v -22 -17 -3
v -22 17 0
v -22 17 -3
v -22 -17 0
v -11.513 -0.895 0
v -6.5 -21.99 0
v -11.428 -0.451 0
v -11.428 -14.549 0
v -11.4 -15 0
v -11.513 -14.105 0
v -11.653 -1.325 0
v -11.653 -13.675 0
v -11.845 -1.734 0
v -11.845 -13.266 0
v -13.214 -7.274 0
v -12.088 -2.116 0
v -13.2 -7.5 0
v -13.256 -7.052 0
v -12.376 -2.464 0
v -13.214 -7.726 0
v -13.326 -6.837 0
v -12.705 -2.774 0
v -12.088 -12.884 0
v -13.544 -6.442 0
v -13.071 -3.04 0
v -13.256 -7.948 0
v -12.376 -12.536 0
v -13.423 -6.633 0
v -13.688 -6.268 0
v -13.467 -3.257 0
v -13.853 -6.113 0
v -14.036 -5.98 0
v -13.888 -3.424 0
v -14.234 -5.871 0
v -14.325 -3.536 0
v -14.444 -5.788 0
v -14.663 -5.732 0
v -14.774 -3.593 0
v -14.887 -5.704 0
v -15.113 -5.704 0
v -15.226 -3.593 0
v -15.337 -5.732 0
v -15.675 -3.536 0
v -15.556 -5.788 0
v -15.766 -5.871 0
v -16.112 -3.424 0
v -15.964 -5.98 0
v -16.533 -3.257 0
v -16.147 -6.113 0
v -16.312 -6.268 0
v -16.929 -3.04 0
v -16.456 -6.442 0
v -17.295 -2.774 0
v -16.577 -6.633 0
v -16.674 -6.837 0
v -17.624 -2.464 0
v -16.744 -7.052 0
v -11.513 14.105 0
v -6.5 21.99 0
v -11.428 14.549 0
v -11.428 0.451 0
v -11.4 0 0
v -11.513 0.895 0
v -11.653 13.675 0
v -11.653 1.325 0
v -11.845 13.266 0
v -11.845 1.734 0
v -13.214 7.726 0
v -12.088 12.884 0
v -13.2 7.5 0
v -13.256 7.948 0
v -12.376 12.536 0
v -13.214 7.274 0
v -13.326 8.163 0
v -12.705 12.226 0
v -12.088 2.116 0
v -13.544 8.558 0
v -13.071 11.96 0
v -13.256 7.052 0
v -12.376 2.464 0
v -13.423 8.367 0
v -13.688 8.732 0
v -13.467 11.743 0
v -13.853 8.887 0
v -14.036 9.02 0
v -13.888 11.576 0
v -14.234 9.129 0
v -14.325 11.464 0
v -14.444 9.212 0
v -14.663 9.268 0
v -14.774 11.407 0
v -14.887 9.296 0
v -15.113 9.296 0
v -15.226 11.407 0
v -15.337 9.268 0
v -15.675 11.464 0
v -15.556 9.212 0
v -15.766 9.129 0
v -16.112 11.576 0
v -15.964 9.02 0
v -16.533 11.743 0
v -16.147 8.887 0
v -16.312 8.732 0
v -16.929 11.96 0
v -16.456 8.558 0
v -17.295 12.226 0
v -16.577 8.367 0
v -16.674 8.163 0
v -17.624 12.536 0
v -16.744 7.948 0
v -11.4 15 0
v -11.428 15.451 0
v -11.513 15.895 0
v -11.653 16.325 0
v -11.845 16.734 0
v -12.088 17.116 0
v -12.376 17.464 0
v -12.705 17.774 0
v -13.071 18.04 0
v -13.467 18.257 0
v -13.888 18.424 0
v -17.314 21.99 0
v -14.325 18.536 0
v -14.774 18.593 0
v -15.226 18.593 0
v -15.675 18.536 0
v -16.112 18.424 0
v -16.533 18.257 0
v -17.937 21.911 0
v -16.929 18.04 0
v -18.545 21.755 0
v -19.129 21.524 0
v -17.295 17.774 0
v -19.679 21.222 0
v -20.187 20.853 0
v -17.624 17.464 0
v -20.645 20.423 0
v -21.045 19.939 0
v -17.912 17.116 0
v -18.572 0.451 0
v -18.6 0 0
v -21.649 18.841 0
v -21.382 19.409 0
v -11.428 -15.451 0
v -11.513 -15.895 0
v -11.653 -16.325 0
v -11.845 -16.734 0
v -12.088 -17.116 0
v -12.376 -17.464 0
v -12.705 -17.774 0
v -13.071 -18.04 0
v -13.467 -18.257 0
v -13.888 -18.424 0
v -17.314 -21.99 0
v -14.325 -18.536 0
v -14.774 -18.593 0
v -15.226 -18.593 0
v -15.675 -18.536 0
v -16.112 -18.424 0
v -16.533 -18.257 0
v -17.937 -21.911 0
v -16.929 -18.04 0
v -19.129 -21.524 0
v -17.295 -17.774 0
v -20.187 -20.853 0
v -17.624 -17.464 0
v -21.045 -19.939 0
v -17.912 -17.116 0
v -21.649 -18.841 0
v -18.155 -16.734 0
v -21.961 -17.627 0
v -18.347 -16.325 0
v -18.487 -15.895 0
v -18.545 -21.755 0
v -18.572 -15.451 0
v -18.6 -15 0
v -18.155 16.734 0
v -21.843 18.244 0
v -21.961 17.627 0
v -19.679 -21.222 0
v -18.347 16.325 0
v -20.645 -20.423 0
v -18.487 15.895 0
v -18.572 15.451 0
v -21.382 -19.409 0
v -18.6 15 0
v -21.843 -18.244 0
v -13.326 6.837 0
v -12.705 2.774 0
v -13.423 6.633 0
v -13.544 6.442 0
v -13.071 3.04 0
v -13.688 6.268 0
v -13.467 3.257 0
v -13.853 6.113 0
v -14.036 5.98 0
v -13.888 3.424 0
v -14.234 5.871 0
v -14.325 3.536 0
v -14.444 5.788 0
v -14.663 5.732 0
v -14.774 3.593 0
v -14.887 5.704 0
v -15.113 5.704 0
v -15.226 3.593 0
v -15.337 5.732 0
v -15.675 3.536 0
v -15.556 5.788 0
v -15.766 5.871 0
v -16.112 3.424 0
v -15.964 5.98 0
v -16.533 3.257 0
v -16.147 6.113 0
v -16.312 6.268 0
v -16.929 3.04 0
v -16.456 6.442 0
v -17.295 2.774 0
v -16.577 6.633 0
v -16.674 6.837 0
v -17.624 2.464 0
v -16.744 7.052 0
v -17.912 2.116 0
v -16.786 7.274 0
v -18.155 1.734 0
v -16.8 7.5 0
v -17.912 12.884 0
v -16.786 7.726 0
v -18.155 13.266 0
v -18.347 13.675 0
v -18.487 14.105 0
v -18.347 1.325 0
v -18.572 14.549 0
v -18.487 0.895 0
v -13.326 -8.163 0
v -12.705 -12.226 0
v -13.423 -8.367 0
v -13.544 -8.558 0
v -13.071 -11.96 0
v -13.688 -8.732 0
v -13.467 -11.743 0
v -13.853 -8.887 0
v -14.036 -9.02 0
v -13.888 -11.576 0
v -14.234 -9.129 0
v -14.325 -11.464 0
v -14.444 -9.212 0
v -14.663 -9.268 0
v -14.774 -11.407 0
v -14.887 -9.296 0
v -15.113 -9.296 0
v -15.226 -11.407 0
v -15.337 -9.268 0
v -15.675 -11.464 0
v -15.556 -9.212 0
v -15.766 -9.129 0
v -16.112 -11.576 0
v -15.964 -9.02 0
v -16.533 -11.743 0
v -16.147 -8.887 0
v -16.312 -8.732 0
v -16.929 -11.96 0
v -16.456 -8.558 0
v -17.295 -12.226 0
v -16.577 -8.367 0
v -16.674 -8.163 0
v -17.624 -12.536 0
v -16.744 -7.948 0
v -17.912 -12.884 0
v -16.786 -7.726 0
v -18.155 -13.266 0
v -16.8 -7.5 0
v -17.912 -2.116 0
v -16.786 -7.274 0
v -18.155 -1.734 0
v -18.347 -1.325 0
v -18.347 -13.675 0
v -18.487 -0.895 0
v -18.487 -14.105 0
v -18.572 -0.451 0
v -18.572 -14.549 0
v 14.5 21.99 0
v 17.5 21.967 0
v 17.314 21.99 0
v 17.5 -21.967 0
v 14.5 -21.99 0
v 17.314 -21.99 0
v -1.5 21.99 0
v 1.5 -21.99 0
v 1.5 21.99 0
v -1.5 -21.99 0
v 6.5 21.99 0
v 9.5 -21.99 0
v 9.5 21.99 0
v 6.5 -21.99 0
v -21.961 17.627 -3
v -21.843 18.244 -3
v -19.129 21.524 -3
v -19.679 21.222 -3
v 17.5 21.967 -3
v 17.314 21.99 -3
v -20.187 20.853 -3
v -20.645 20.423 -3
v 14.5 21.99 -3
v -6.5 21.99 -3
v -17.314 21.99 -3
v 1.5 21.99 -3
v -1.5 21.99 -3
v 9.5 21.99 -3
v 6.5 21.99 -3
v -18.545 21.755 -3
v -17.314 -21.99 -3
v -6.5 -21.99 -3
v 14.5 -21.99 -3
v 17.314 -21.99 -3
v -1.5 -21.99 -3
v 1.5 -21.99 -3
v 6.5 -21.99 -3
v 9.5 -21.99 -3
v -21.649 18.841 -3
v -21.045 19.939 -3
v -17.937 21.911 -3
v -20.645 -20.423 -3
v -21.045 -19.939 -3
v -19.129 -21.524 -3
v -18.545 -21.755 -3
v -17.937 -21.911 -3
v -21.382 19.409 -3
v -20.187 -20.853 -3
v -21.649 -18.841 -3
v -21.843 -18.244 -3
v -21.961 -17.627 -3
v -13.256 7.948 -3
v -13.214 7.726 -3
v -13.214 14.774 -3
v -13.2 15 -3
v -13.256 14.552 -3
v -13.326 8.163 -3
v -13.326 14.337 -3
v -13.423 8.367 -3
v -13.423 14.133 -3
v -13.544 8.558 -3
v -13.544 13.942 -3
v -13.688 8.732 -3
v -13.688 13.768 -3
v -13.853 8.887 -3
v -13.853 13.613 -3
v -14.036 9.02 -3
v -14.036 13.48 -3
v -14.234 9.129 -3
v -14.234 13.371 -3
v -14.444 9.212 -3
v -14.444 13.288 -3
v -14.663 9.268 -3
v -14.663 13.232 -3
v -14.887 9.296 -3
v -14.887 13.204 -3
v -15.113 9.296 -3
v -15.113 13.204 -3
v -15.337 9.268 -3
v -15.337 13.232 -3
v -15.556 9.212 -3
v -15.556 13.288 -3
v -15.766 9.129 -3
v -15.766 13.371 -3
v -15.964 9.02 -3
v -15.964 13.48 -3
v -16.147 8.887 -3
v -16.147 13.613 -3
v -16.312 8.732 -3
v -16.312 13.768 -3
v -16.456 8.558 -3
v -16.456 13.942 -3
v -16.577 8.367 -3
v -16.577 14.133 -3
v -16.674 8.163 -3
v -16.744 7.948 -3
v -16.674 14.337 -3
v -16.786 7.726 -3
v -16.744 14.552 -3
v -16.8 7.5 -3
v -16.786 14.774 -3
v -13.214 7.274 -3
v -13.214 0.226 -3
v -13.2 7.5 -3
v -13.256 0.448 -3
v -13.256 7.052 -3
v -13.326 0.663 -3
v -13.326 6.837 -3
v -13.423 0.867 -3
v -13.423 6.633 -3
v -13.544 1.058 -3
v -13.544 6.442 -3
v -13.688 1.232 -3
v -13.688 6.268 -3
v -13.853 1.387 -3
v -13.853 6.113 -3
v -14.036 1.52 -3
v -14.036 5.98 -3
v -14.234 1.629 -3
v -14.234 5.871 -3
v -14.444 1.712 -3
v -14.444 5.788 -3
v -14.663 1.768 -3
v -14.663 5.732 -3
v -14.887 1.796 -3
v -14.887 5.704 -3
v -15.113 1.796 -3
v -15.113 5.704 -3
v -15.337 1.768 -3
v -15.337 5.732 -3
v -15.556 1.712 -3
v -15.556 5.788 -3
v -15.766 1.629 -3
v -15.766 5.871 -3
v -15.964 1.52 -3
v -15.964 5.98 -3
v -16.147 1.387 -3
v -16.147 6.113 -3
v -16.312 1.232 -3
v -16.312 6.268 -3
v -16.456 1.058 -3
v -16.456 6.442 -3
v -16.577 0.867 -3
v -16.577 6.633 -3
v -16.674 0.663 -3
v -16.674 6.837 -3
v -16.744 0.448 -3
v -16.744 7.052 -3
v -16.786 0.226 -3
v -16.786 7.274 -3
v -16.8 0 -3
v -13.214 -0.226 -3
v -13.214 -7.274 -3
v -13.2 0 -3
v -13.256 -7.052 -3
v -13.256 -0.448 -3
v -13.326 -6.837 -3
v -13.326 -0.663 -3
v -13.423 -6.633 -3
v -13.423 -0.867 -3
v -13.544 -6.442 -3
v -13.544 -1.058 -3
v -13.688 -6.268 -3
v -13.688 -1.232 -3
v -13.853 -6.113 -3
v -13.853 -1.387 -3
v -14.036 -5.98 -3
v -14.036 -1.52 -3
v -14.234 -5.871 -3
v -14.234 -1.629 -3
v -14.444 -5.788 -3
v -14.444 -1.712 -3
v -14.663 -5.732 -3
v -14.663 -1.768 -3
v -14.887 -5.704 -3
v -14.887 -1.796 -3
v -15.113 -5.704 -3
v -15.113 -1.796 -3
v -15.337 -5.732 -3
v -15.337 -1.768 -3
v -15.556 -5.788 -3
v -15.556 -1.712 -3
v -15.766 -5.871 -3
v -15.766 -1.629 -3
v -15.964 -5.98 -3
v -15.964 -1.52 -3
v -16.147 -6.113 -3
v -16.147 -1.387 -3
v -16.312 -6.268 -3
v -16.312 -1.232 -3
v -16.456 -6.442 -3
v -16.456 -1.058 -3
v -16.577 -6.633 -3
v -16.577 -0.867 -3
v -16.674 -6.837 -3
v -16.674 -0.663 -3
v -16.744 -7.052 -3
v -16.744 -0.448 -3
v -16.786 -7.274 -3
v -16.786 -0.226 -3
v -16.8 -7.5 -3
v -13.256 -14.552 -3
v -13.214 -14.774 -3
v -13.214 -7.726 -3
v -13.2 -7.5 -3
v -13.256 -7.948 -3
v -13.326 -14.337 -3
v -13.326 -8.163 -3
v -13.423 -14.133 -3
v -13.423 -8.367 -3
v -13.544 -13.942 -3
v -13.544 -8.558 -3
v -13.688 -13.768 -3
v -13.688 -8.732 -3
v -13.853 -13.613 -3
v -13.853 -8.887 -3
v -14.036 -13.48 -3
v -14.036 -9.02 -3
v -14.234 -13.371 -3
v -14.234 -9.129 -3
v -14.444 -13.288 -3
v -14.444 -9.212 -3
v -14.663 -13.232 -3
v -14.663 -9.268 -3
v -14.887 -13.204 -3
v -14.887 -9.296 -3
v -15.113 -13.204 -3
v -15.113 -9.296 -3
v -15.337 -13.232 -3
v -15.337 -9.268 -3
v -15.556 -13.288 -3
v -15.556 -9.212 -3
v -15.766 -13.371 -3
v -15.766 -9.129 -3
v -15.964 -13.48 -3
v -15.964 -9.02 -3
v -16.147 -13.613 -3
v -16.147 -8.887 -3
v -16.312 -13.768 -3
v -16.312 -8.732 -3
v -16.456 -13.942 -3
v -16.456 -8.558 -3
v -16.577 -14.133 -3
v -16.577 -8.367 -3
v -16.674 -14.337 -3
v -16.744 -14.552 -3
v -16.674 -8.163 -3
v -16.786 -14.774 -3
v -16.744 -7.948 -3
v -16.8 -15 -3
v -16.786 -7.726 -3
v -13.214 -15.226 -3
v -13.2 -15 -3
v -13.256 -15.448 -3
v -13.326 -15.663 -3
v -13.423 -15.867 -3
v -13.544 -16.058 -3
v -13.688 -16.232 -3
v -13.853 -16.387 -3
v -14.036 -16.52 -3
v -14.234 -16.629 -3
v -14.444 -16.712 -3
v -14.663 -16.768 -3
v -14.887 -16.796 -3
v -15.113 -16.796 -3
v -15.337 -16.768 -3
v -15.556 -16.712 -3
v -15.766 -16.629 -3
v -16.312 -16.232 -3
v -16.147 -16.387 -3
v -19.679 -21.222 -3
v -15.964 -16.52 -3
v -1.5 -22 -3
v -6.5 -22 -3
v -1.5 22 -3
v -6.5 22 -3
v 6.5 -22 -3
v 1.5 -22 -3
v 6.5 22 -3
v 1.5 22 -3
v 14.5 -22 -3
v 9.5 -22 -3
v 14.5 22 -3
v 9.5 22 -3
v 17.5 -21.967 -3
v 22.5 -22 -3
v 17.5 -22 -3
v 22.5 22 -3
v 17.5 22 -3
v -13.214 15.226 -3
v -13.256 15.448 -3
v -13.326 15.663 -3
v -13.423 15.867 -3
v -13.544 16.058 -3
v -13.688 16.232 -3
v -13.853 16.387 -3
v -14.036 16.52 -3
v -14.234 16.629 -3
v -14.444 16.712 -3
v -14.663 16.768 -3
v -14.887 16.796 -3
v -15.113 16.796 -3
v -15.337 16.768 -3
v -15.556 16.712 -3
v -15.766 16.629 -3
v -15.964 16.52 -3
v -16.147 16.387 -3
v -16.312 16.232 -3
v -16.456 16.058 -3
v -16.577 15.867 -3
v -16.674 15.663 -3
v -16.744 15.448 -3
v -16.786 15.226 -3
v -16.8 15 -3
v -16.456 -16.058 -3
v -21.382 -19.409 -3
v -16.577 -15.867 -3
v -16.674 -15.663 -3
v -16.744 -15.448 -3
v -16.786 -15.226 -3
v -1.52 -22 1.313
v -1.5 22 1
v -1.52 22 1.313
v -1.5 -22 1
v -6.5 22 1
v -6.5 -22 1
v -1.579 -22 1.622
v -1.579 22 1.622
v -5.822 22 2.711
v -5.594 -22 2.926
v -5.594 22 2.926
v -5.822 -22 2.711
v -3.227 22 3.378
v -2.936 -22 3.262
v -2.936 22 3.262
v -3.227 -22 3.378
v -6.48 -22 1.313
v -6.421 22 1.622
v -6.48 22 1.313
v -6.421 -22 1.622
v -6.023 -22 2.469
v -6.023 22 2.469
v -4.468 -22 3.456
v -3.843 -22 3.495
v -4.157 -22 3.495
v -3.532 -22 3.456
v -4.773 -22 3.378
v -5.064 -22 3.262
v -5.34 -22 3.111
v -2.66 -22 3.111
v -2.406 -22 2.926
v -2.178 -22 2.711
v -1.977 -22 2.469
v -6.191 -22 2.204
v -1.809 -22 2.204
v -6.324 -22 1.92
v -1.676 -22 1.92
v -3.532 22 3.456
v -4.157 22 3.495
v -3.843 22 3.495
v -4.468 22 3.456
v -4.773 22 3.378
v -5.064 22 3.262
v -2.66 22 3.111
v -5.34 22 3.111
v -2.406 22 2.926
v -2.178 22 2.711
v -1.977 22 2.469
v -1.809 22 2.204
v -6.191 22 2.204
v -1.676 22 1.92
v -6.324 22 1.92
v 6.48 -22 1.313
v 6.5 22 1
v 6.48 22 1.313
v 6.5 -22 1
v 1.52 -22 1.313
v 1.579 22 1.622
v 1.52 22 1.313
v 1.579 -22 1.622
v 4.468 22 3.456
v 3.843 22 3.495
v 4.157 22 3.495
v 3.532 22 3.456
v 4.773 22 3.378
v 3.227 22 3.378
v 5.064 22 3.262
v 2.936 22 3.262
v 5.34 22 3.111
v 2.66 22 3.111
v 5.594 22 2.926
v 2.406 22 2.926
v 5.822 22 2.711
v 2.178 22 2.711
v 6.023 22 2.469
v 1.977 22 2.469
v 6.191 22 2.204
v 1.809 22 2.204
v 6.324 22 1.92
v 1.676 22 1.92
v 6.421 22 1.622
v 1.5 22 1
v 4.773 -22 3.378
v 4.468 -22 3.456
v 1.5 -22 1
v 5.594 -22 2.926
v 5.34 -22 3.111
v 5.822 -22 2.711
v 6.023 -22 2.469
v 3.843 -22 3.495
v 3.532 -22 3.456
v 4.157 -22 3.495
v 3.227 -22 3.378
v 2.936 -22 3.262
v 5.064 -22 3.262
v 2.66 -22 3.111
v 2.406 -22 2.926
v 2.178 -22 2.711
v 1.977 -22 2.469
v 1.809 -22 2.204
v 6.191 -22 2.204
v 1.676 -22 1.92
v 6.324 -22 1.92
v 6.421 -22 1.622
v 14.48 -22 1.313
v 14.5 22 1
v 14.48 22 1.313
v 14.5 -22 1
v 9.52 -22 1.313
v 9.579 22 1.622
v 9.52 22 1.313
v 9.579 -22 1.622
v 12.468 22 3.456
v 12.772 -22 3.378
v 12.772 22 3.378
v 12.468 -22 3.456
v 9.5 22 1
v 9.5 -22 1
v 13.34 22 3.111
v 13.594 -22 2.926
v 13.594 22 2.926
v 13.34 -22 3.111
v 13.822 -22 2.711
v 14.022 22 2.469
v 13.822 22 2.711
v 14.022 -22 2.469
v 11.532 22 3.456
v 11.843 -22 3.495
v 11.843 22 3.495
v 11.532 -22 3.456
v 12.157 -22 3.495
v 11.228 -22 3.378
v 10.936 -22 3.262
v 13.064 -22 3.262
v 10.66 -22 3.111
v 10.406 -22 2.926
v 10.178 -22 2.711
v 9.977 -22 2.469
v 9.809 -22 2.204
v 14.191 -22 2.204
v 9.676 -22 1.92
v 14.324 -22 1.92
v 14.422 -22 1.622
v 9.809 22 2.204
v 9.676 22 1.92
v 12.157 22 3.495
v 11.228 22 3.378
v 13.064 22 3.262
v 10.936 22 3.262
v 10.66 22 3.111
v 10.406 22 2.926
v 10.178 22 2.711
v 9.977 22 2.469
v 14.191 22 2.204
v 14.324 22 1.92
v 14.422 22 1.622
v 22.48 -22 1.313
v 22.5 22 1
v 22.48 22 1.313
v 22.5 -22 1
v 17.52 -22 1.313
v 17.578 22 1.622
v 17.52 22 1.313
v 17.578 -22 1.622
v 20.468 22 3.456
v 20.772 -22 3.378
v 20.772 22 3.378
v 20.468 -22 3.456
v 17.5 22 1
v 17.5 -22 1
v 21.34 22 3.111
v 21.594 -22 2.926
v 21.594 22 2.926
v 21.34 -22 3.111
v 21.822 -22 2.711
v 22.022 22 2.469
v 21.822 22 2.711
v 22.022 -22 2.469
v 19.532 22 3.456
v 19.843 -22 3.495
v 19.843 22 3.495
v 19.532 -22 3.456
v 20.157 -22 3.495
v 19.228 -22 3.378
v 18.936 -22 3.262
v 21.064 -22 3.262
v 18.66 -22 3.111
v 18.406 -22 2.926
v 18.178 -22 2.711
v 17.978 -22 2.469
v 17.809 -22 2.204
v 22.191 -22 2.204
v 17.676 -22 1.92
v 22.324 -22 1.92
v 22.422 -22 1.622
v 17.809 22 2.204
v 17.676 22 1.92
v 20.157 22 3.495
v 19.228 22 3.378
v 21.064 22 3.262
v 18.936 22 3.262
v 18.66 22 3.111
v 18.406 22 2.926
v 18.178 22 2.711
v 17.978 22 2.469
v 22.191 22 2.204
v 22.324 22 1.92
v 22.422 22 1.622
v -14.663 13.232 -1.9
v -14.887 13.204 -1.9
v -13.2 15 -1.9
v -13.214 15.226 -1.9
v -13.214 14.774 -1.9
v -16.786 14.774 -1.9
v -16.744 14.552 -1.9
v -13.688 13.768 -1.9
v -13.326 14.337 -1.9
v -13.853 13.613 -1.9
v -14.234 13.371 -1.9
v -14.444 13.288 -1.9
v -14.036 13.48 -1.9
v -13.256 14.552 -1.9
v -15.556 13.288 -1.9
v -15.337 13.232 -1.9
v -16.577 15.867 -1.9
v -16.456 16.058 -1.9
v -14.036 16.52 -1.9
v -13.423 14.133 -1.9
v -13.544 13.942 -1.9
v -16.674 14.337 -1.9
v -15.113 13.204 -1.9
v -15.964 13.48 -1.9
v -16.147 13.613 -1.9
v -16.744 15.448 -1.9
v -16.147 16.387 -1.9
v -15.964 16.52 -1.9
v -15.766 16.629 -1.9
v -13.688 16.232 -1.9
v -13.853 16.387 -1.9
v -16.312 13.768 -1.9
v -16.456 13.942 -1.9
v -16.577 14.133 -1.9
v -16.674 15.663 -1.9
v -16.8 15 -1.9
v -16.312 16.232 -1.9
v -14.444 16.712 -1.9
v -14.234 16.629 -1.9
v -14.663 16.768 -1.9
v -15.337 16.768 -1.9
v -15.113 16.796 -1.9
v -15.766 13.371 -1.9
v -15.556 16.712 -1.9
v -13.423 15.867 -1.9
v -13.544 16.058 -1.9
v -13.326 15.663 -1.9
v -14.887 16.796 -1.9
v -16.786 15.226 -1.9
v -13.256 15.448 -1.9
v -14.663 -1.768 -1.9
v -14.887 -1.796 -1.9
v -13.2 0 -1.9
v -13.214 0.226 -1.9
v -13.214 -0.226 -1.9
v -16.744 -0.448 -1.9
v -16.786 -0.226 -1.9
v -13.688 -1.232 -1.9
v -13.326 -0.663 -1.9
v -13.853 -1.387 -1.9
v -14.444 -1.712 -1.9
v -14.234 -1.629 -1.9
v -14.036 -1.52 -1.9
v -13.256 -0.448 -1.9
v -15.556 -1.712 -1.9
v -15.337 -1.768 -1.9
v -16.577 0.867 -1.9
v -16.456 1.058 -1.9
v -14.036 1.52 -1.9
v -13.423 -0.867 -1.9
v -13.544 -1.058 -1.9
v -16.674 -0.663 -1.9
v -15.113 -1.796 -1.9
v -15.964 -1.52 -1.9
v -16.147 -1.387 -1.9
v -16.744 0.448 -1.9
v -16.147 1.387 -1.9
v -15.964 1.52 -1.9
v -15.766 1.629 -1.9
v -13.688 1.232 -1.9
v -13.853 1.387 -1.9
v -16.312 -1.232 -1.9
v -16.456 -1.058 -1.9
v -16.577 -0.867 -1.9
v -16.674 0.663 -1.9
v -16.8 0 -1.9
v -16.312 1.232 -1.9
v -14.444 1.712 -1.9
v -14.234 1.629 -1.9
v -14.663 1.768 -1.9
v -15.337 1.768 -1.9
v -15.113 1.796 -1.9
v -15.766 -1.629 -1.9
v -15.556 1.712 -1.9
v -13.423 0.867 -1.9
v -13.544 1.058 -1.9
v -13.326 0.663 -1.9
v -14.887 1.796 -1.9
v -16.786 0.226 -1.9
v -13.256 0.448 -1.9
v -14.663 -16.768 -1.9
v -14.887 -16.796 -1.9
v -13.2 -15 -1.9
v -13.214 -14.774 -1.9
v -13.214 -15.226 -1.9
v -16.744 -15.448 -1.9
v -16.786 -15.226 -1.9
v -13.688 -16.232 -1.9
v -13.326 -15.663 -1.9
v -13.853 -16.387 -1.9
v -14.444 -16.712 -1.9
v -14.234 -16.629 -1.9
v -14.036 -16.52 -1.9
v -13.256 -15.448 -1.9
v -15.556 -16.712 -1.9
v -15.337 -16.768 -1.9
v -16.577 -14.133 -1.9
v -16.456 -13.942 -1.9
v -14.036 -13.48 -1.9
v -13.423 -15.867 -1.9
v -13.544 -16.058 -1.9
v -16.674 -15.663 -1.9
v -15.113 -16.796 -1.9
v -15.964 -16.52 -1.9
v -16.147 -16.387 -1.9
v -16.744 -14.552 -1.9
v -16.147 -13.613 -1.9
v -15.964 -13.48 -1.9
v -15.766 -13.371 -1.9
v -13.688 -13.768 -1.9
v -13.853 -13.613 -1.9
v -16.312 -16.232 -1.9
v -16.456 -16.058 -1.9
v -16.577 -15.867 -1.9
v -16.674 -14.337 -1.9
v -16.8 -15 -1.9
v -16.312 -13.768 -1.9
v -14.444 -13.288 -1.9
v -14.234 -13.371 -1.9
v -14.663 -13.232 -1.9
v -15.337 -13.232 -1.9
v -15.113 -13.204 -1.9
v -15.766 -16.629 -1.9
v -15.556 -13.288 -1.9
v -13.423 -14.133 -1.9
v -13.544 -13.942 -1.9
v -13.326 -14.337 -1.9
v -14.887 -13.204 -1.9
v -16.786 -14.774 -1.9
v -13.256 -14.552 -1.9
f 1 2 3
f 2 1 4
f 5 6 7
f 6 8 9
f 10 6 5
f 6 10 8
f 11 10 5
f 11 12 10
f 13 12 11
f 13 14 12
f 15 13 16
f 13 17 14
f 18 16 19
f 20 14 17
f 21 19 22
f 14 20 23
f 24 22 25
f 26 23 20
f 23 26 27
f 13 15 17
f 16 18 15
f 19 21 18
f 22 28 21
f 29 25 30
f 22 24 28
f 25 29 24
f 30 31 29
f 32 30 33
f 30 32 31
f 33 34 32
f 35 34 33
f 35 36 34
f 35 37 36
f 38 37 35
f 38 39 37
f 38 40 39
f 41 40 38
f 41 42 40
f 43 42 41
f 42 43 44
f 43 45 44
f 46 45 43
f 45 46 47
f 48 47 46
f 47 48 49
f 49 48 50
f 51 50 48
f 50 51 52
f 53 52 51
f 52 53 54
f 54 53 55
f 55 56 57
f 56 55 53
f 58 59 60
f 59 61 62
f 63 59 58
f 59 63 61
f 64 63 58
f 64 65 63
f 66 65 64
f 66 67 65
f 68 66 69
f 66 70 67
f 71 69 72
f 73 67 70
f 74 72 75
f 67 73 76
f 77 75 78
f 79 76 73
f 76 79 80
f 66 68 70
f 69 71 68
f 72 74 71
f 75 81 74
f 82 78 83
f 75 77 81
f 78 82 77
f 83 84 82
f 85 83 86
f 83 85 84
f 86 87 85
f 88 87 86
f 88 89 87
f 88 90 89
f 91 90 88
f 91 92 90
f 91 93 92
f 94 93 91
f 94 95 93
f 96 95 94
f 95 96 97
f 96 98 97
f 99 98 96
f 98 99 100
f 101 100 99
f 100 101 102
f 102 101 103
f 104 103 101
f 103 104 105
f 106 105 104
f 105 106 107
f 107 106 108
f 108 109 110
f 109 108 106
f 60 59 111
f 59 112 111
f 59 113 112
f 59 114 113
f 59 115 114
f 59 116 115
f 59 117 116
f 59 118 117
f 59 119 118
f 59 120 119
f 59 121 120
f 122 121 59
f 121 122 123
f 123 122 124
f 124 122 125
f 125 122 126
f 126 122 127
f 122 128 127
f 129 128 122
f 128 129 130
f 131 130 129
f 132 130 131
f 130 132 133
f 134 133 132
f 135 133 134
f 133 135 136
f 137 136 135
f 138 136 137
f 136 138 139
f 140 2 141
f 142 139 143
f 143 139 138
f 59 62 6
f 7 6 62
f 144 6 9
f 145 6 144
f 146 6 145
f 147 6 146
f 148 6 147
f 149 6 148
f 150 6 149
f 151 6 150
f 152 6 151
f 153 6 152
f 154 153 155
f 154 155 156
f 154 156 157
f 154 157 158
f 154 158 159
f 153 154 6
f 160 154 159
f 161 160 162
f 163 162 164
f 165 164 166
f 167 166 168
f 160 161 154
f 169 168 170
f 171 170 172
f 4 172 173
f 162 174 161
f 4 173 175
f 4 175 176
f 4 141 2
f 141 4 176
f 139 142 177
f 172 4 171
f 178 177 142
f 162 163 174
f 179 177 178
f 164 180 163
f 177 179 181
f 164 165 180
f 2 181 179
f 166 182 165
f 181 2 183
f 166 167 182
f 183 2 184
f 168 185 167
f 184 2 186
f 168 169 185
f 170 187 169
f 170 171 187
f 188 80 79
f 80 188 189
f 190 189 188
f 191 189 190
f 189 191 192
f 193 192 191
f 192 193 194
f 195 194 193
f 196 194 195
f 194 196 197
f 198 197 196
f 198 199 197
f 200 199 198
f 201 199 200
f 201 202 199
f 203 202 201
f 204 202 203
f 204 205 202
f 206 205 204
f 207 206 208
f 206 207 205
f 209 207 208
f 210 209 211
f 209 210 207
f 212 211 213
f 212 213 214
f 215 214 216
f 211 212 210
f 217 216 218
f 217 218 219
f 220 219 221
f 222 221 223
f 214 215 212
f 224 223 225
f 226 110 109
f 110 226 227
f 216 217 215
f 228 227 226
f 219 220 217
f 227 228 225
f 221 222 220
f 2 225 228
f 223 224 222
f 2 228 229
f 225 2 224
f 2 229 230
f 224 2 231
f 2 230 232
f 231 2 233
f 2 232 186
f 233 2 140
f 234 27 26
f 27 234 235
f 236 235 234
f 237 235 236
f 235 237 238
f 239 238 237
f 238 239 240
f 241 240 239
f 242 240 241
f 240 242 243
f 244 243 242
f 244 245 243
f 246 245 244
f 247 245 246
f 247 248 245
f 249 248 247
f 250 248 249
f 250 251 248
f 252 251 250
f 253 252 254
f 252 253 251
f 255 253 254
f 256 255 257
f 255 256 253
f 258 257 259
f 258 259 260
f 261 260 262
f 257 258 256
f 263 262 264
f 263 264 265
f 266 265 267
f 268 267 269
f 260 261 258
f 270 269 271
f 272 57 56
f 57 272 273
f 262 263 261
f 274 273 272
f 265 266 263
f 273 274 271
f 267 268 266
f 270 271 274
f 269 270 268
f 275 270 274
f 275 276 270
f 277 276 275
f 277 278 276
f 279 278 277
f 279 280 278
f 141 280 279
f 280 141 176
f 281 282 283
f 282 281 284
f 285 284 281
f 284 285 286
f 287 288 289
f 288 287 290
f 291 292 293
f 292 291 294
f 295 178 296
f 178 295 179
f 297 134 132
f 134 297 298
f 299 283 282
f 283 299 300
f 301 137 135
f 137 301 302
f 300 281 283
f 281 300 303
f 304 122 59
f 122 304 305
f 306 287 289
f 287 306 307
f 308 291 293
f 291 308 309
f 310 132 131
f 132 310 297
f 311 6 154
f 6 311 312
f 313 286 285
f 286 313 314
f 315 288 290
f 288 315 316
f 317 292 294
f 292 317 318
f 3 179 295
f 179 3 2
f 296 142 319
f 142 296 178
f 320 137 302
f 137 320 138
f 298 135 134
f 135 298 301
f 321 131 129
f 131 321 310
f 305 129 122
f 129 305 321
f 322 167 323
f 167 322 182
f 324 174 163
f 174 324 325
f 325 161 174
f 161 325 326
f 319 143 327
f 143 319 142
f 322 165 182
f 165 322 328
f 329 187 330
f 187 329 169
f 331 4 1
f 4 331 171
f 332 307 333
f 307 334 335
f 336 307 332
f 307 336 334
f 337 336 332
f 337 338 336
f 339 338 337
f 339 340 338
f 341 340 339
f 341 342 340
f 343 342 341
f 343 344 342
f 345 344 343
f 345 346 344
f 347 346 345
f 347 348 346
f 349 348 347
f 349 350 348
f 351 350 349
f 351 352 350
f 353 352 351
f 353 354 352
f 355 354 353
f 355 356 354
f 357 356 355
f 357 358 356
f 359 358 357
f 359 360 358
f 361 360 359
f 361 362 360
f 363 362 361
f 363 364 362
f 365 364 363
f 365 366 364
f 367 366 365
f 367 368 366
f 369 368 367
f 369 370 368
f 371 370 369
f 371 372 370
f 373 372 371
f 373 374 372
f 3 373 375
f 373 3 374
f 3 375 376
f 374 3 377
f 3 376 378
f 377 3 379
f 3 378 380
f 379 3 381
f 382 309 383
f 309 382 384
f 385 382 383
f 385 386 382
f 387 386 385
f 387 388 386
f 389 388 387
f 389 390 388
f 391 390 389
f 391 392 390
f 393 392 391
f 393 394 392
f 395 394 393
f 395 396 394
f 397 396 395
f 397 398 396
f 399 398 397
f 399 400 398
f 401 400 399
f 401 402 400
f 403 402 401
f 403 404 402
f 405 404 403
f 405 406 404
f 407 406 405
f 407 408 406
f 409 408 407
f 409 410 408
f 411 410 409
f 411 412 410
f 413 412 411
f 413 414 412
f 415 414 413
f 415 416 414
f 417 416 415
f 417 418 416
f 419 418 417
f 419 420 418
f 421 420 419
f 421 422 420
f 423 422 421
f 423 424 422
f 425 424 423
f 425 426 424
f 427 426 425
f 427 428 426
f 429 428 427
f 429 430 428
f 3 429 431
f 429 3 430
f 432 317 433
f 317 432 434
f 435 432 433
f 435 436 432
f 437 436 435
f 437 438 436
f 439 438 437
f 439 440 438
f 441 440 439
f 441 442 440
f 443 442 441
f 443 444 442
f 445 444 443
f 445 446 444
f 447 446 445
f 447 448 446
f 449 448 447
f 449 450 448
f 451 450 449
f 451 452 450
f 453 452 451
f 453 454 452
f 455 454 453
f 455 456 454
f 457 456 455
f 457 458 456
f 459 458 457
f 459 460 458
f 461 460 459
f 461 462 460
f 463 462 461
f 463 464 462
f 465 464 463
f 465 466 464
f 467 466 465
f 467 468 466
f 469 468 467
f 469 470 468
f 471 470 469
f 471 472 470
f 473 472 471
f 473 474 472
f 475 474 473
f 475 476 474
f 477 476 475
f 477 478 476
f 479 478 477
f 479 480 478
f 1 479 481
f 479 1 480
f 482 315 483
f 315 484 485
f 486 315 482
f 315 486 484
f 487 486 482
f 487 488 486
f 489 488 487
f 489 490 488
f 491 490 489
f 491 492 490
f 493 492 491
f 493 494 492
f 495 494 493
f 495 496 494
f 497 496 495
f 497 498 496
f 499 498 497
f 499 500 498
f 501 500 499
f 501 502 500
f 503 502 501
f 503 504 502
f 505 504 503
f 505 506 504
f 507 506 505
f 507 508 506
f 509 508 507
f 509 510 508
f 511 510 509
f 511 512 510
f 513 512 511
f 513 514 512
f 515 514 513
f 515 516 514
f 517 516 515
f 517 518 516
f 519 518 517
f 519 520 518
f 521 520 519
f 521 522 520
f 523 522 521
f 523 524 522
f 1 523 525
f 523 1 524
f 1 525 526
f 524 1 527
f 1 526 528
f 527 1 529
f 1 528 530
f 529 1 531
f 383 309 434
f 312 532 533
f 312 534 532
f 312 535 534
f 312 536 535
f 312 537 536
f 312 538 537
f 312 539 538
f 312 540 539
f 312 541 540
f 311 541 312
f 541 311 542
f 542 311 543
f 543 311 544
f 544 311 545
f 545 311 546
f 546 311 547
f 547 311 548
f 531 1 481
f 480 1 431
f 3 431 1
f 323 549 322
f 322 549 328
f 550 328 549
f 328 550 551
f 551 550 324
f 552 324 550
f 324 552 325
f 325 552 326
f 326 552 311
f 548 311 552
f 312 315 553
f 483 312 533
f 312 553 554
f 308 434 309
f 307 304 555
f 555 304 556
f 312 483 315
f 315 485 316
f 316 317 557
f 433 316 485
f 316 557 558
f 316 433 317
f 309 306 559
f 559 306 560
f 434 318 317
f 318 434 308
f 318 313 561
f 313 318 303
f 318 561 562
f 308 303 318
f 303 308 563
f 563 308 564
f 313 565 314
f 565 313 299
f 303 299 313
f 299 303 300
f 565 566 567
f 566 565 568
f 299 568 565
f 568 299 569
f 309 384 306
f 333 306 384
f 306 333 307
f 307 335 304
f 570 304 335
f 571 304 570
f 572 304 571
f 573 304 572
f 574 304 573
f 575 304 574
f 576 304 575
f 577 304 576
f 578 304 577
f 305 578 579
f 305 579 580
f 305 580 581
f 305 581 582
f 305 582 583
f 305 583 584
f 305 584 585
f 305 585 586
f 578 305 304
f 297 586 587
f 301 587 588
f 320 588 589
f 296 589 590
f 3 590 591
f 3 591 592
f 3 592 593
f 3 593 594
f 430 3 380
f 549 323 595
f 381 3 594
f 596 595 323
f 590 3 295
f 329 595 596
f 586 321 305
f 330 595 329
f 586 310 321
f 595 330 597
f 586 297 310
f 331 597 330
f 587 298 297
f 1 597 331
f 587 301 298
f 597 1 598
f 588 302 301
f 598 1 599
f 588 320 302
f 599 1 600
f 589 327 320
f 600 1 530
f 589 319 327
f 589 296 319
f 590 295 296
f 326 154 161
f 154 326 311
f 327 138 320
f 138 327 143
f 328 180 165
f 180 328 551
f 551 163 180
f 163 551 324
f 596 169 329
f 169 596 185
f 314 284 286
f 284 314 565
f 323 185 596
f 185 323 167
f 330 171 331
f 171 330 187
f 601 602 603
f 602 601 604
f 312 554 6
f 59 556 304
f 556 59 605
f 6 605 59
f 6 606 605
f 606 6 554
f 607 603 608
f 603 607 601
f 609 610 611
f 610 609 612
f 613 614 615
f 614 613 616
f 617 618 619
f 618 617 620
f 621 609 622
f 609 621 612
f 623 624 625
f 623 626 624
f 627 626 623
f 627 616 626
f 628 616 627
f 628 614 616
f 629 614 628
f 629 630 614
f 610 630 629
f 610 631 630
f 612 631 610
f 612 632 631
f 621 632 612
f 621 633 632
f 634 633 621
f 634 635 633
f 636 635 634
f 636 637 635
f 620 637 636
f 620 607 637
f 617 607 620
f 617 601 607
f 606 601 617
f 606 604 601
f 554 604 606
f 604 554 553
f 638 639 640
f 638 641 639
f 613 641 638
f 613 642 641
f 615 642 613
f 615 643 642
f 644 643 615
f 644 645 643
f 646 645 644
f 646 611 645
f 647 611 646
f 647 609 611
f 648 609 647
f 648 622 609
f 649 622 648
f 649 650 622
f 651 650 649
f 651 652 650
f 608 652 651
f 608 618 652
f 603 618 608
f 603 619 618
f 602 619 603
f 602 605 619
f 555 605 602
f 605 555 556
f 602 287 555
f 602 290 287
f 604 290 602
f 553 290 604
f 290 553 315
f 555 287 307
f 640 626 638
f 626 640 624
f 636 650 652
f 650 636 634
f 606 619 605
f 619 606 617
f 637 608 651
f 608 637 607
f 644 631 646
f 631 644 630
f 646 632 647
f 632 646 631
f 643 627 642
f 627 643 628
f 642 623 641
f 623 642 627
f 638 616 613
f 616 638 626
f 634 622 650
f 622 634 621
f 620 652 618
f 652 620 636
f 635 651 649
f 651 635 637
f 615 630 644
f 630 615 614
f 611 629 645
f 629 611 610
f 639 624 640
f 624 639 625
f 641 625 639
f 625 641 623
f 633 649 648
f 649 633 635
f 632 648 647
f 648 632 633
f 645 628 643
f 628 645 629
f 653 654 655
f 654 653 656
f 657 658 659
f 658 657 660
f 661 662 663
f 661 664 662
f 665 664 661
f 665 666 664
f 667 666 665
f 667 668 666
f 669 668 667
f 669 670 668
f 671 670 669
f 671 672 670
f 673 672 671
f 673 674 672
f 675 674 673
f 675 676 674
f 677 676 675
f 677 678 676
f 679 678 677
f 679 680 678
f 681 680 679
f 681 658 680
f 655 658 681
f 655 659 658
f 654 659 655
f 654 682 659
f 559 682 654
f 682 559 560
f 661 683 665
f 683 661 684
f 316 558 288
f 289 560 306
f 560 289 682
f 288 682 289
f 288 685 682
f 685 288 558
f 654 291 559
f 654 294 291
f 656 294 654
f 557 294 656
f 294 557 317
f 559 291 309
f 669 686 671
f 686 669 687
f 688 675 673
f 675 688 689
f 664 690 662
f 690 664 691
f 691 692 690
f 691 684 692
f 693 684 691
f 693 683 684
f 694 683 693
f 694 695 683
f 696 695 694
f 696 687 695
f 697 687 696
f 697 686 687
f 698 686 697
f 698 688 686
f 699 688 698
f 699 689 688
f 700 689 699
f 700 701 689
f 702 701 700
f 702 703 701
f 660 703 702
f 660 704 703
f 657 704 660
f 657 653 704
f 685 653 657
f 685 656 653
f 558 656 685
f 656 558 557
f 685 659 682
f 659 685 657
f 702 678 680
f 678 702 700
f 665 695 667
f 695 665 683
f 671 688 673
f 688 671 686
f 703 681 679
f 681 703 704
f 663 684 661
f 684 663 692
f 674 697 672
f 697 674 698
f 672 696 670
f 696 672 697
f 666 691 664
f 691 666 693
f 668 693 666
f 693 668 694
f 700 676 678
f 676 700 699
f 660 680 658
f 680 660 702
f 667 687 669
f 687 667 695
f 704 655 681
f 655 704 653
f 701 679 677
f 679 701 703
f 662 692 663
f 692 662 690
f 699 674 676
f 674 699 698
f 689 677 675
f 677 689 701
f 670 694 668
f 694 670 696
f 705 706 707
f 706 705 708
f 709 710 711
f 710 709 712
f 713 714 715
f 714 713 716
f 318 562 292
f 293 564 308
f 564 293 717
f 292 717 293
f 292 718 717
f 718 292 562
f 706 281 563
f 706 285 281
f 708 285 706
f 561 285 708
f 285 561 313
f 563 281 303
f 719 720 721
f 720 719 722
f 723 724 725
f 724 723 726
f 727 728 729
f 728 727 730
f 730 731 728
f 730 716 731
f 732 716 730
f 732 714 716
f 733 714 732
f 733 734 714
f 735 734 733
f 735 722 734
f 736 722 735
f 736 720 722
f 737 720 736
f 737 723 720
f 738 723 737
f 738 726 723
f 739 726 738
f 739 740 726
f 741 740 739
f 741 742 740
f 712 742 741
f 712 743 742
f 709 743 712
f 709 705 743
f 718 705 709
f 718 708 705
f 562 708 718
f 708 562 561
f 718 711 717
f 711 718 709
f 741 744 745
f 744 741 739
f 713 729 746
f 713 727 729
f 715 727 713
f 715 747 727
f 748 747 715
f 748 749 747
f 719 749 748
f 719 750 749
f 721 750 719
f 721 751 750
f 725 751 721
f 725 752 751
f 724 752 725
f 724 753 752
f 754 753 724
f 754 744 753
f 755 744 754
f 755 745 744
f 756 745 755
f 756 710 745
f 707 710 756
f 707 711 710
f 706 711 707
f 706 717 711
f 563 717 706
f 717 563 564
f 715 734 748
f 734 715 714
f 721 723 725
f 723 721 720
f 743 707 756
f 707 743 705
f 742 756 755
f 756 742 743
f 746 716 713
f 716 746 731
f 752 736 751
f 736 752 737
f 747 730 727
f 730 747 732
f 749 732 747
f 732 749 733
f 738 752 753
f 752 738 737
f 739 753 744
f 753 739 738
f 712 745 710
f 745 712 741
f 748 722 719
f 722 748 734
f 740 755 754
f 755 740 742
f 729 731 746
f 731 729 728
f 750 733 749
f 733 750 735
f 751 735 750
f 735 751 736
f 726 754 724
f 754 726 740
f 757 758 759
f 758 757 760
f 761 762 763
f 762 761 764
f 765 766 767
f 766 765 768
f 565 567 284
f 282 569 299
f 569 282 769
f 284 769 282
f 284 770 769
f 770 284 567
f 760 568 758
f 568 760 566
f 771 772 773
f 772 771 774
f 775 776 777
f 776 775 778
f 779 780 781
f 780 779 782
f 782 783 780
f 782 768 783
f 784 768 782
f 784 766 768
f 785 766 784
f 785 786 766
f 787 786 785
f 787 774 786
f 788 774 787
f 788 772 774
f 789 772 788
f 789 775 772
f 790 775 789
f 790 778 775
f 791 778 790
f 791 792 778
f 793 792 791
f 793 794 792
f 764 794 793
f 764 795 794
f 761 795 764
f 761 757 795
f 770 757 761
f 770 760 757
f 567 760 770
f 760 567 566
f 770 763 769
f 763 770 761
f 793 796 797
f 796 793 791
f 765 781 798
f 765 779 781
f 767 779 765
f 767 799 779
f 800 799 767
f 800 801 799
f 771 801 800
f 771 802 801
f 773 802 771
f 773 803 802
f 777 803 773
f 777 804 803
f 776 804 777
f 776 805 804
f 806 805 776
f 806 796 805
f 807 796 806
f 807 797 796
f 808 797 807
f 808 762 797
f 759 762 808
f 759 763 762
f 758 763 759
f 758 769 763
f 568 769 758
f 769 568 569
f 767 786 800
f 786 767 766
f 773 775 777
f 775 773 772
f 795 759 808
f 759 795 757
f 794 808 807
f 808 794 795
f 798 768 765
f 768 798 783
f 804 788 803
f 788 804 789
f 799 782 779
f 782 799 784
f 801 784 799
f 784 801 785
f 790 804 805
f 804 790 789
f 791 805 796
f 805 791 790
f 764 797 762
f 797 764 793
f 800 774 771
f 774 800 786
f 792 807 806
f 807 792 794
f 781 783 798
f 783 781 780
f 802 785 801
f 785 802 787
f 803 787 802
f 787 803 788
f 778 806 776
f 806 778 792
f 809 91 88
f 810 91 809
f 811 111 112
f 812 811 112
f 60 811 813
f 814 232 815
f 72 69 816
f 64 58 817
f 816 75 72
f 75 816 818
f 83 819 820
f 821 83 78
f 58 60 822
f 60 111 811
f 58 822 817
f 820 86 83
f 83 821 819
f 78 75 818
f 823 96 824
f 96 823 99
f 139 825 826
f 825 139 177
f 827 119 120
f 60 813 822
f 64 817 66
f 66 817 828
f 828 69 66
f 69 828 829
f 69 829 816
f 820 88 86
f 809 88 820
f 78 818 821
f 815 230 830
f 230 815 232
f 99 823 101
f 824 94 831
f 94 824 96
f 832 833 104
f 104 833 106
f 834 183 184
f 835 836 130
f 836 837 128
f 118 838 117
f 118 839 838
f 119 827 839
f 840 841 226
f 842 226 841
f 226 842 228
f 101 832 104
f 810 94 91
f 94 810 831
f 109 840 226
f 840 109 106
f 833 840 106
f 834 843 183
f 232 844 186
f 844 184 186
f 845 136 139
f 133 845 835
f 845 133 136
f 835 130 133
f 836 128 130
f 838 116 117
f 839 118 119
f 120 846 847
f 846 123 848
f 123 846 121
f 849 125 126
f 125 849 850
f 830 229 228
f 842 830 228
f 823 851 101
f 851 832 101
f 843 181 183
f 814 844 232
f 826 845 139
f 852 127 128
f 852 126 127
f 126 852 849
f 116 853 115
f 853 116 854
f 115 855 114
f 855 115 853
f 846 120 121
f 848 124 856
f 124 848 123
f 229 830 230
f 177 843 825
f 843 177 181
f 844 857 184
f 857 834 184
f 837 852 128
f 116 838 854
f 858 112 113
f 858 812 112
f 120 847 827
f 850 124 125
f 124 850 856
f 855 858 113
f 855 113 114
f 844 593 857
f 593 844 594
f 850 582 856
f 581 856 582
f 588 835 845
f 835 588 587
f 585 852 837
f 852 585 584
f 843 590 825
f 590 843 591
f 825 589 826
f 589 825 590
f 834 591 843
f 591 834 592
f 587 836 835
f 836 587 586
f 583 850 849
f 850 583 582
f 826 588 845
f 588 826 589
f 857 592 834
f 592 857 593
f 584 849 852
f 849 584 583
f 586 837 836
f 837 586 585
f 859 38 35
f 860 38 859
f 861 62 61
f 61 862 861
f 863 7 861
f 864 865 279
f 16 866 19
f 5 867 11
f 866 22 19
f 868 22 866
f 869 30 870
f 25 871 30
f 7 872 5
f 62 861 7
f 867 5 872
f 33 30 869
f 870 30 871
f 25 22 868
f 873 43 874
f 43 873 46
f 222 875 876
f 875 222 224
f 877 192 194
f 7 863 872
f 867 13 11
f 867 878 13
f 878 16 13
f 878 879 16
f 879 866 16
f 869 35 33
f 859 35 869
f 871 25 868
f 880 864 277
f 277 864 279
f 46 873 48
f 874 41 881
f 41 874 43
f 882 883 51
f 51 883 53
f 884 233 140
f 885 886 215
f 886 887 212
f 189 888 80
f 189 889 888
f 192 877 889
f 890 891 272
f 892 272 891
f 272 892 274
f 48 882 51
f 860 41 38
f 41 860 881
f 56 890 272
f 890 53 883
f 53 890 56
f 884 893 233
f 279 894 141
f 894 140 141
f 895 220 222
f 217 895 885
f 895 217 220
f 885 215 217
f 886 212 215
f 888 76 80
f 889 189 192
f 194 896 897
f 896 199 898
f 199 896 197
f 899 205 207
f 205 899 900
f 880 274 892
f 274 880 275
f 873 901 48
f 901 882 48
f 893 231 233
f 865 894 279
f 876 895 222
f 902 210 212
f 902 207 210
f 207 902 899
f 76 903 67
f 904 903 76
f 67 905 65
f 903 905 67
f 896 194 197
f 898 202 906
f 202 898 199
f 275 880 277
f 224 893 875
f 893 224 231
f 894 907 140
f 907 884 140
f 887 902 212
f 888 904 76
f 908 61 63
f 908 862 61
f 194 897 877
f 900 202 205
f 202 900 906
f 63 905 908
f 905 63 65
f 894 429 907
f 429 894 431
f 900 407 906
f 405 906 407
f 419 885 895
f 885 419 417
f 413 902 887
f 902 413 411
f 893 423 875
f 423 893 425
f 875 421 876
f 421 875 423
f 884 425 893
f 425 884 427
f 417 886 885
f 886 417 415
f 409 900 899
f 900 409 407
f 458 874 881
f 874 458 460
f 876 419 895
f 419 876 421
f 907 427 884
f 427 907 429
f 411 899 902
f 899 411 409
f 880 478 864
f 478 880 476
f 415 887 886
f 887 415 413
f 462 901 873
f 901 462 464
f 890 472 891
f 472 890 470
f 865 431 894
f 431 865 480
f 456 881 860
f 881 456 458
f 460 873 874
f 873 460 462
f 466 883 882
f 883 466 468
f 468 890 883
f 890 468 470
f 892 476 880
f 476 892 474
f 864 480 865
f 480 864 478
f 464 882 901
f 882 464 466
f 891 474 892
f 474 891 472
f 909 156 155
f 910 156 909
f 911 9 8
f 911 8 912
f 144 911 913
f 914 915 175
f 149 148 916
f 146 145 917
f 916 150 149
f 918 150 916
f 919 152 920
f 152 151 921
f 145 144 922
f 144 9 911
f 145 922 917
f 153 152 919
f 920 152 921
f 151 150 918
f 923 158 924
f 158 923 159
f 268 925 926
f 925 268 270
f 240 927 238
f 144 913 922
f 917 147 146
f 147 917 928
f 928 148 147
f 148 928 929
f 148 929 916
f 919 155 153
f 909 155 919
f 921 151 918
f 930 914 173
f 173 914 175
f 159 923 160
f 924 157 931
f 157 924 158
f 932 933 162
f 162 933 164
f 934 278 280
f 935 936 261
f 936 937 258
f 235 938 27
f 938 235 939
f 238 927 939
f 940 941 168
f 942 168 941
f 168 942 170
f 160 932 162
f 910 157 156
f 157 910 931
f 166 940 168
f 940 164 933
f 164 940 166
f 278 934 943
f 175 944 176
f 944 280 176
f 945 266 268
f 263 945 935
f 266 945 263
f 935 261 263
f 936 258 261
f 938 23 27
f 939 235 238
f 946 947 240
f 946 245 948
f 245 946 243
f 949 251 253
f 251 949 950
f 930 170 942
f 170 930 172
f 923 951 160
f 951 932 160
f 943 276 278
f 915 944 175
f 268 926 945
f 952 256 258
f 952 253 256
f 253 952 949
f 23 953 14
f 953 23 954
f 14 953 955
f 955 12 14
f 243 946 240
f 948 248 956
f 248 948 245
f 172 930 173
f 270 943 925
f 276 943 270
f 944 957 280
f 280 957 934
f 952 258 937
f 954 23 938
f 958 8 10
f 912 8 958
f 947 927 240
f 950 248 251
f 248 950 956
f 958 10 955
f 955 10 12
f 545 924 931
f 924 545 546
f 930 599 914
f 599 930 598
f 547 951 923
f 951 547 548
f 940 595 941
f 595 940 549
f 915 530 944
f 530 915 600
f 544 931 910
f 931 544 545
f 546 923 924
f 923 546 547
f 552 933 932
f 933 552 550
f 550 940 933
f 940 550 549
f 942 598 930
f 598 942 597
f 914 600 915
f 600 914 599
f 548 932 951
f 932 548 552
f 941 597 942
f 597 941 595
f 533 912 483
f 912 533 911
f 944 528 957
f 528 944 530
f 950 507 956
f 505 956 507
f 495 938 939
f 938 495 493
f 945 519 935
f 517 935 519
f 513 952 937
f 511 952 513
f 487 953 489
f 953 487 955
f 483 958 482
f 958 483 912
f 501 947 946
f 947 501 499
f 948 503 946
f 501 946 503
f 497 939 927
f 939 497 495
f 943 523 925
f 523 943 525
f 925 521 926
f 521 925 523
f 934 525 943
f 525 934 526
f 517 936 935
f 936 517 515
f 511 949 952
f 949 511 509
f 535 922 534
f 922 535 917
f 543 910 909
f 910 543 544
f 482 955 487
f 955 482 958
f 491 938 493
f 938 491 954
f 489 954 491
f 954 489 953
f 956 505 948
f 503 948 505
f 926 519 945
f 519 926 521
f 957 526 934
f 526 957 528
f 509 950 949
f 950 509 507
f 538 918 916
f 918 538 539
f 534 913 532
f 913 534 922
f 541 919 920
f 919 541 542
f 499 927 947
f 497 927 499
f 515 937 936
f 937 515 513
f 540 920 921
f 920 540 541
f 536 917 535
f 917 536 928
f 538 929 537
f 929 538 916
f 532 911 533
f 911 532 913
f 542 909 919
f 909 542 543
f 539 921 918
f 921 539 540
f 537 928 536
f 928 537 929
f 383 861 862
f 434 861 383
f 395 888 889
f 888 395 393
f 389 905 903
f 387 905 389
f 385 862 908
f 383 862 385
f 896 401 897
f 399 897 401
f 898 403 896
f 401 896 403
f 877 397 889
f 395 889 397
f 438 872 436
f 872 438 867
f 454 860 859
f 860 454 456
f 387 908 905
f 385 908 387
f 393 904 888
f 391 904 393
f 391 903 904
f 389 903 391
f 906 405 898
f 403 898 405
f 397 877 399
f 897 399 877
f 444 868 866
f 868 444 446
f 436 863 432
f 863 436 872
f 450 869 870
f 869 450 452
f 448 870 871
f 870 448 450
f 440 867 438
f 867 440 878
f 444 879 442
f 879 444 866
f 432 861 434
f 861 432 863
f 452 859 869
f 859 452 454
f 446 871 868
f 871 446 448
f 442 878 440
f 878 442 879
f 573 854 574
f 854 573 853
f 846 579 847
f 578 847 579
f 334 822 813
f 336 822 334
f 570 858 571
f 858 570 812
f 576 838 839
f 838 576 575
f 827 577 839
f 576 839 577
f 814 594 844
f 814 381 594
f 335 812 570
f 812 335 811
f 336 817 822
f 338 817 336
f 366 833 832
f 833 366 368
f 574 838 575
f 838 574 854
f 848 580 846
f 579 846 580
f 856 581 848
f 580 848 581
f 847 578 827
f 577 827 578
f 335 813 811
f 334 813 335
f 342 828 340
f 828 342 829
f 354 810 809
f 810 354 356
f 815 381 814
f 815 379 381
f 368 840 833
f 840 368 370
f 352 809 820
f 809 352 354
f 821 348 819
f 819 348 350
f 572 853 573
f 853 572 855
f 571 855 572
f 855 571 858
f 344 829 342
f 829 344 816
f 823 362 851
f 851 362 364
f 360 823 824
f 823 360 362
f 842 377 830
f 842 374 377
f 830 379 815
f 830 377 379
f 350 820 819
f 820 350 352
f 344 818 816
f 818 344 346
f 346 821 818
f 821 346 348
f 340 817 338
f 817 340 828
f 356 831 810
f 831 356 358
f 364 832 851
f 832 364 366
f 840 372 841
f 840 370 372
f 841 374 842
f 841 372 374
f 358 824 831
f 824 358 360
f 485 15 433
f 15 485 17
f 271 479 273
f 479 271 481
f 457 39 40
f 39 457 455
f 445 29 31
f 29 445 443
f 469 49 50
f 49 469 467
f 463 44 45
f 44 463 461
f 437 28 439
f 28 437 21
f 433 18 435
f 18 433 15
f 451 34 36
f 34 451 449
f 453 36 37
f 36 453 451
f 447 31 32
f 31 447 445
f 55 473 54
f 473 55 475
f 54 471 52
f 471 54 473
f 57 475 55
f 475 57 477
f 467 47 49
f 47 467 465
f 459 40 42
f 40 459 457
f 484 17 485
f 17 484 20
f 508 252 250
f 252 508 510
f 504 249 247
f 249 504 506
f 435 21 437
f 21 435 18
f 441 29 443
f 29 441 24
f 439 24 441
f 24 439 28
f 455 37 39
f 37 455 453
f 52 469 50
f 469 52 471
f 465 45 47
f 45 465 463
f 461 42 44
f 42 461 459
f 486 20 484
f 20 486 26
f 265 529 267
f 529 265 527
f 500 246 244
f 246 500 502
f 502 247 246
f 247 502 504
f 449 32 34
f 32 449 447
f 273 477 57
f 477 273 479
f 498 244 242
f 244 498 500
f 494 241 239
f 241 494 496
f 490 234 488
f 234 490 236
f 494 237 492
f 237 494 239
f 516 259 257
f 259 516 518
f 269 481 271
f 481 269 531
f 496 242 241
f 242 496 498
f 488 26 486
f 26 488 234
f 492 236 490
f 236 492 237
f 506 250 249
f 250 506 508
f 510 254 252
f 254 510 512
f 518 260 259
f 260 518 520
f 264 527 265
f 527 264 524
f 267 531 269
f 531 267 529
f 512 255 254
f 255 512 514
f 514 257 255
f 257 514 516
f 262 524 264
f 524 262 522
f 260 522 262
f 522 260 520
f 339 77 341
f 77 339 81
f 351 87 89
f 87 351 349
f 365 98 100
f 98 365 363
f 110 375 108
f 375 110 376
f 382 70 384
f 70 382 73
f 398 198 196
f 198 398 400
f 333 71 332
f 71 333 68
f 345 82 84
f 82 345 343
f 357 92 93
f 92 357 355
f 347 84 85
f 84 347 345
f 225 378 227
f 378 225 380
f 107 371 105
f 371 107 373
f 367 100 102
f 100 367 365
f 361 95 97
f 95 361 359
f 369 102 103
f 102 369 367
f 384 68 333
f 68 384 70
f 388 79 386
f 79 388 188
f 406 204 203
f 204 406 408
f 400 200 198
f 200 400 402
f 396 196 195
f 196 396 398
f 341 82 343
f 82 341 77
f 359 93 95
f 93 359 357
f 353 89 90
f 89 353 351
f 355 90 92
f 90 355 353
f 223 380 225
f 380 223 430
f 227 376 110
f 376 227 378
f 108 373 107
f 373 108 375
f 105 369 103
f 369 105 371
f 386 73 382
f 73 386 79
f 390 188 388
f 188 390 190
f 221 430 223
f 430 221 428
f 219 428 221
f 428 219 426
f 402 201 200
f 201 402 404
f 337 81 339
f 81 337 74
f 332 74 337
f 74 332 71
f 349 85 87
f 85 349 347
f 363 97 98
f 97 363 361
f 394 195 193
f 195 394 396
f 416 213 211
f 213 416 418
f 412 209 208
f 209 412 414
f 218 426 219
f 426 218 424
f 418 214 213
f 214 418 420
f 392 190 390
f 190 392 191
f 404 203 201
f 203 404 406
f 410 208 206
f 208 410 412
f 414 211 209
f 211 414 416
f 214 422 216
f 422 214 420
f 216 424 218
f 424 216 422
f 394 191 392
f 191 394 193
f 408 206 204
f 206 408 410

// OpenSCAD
$fn = 50;


difference() {
	union() {
		translate(v = [0, 0, -3]) {
			hull() {
				translate(v = [-17.0000000000, 17.0000000000, 0]) {
					cylinder(h = 3, r = 5);
				}
				translate(v = [17.0000000000, 17.0000000000, 0]) {
					cylinder(h = 3, r = 5);
				}
				translate(v = [-17.0000000000, -17.0000000000, 0]) {
					cylinder(h = 3, r = 5);
				}
				translate(v = [17.0000000000, -17.0000000000, 0]) {
					cylinder(h = 3, r = 5);
				}
			}
		}
		translate(v = [-4.0000000000, 22.0000000000, -1.5000000000]) {
			rotate(a = [90, 0, 0]) {
				hull() {
					translate(v = [-0.0000000000, 2.5000000000, 0]) {
						cylinder(h = 44, r = 2.5000000000);
					}
					translate(v = [0.0000000000, 2.5000000000, 0]) {
						cylinder(h = 44, r = 2.5000000000);
					}
					translate(v = [-0.0000000000, -2.5000000000, 0]) {
						cylinder(h = 44, r = 2.5000000000);
					}
					translate(v = [0.0000000000, -2.5000000000, 0]) {
						cylinder(h = 44, r = 2.5000000000);
					}
				}
			}
		}
		translate(v = [4.0000000000, 22.0000000000, -1.5000000000]) {
			rotate(a = [90, 0, 0]) {
				hull() {
					translate(v = [-0.0000000000, 2.5000000000, 0]) {
						cylinder(h = 44, r = 2.5000000000);
					}
					translate(v = [0.0000000000, 2.5000000000, 0]) {
						cylinder(h = 44, r = 2.5000000000);
					}
					translate(v = [-0.0000000000, -2.5000000000, 0]) {
						cylinder(h = 44, r = 2.5000000000);
					}
					translate(v = [0.0000000000, -2.5000000000, 0]) {
						cylinder(h = 44, r = 2.5000000000);
					}
				}
			}
		}
		translate(v = [12.0000000000, 22.0000000000, -1.5000000000]) {
			rotate(a = [90, 0, 0]) {
				hull() {
					translate(v = [-0.0000000000, 2.5000000000, 0]) {
						cylinder(h = 44, r = 2.5000000000);
					}
					translate(v = [0.0000000000, 2.5000000000, 0]) {
						cylinder(h = 44, r = 2.5000000000);
					}
					translate(v = [-0.0000000000, -2.5000000000, 0]) {
						cylinder(h = 44, r = 2.5000000000);
					}
					translate(v = [0.0000000000, -2.5000000000, 0]) {
						cylinder(h = 44, r = 2.5000000000);
					}
				}
			}
		}
		translate(v = [20.0000000000, 22.0000000000, -1.5000000000]) {
			rotate(a = [90, 0, 0]) {
				hull() {
					translate(v = [-0.0000000000, 2.5000000000, 0]) {
						cylinder(h = 44, r = 2.5000000000);
					}
					translate(v = [0.0000000000, 2.5000000000, 0]) {
						cylinder(h = 44, r = 2.5000000000);
					}
					translate(v = [-0.0000000000, -2.5000000000, 0]) {
						cylinder(h = 44, r = 2.5000000000);
					}
					translate(v = [0.0000000000, -2.5000000000, 0]) {
						cylinder(h = 44, r = 2.5000000000);
					}
				}
			}
		}
	}
	union() {
		translate(v = [-15.0000000000, 15.0000000000, 0]) {
			rotate(a = [0, 0, 0]) {
				difference() {
					union() {
						#translate(v = [0, 0, -3.0000000000]) {
							cylinder(h = 3, r = 1.5000000000);
						}
						#translate(v = [0, 0, -1.9000000000]) {
							cylinder(h = 1.9000000000, r1 = 1.8000000000, r2 = 3.6000000000);
						}
						#translate(v = [0, 0, -3.0000000000]) {
							cylinder(h = 3, r = 1.8000000000);
						}
						#translate(v = [0, 0, -3.0000000000]) {
							cylinder(h = 3, r = 1.5000000000);
						}
					}
					union();
				}
			}
		}
		translate(v = [-15.0000000000, 0.0000000000, 0]) {
			rotate(a = [0, 0, 0]) {
				difference() {
					union() {
						#translate(v = [0, 0, -3.0000000000]) {
							cylinder(h = 3, r = 1.5000000000);
						}
						#translate(v = [0, 0, -1.9000000000]) {
							cylinder(h = 1.9000000000, r1 = 1.8000000000, r2 = 3.6000000000);
						}
						#translate(v = [0, 0, -3.0000000000]) {
							cylinder(h = 3, r = 1.8000000000);
						}
						#translate(v = [0, 0, -3.0000000000]) {
							cylinder(h = 3, r = 1.5000000000);
						}
					}
					union();
				}
			}
		}
		translate(v = [-15.0000000000, -15.0000000000, 0]) {
			rotate(a = [0, 0, 0]) {
				difference() {
					union() {
						#translate(v = [0, 0, -3.0000000000]) {
							cylinder(h = 3, r = 1.5000000000);
						}
						#translate(v = [0, 0, -1.9000000000]) {
							cylinder(h = 1.9000000000, r1 = 1.8000000000, r2 = 3.6000000000);
						}
						#translate(v = [0, 0, -3.0000000000]) {
							cylinder(h = 3, r = 1.8000000000);
						}
						#translate(v = [0, 0, -3.0000000000]) {
							cylinder(h = 3, r = 1.5000000000);
						}
					}
					union();
				}
			}
		}
		translate(v = [-250.0000000000, -250.0000000000, -503]) {
			cube(size = [500, 500, 500]);
		}
		translate(v = [-250.0000000000, -250.0000000000, -503]) {
			cube(size = [500, 500, 500]);
		}
		translate(v = [-250.0000000000, -250.0000000000, -503]) {
			cube(size = [500, 500, 500]);
		}
		translate(v = [-15.0000000000, -15.0000000000, -100.0000000000]) {
			cylinder(h = 200, r = 1.8000000000);
		}
		translate(v = [-15.0000000000, 0.0000000000, -100.0000000000]) {
			cylinder(h = 200, r = 1.8000000000);
		}
		translate(v = [-15.0000000000, 15.0000000000, -100.0000000000]) {
			cylinder(h = 200, r = 1.8000000000);
		}
		translate(v = [-15.0000000000, -15.0000000000, -100.0000000000]) {
			cylinder(h = 200, r = 1.8000000000);
		}
		translate(v = [-15.0000000000, -7.5000000000, -100.0000000000]) {
			cylinder(h = 200, r = 1.8000000000);
		}
		translate(v = [-15.0000000000, 0.0000000000, -100.0000000000]) {
			cylinder(h = 200, r = 1.8000000000);
		}
		translate(v = [-15.0000000000, 7.5000000000, -100.0000000000]) {
			cylinder(h = 200, r = 1.8000000000);
		}
		translate(v = [-15.0000000000, 15.0000000000, -100.0000000000]) {
			cylinder(h = 200, r = 1.8000000000);
		}
		translate(v = [-15.0000000000, -15.0000000000, -100.0000000000]) {
			cylinder(h = 200, r = 1.8000000000);
		}
		translate(v = [-15.0000000000, -7.5000000000, -100.0000000000]) {
			cylinder(h = 200, r = 1.8000000000);
		}
		translate(v = [-15.0000000000, 0.0000000000, -100.0000000000]) {
			cylinder(h = 200, r = 1.8000000000);
		}
		translate(v = [-15.0000000000, 7.5000000000, -100.0000000000]) {
			cylinder(h = 200, r = 1.8000000000);
		}
		translate(v = [-15.0000000000, 15.0000000000, -100.0000000000]) {
			cylinder(h = 200, r = 1.8000000000);
		}
		translate(v = [-15.0000000000, -15.0000000000, -100.0000000000]) {
			cylinder(h = 200, r = 1.8000000000);
		}
		translate(v = [-15.0000000000, -7.5000000000, -100.0000000000]) {
			cylinder(h = 200, r = 1.8000000000);
		}
		translate(v = [-15.0000000000, 0.0000000000, -100.0000000000]) {
			cylinder(h = 200, r = 1.8000000000);
		}
		translate(v = [-15.0000000000, 7.5000000000, -100.0000000000]) {
			cylinder(h = 200, r = 1.8000000000);
		}
		translate(v = [-15.0000000000, 15.0000000000, -100.0000000000]) {
			cylinder(h = 200, r = 1.8000000000);
		}
	}
}
